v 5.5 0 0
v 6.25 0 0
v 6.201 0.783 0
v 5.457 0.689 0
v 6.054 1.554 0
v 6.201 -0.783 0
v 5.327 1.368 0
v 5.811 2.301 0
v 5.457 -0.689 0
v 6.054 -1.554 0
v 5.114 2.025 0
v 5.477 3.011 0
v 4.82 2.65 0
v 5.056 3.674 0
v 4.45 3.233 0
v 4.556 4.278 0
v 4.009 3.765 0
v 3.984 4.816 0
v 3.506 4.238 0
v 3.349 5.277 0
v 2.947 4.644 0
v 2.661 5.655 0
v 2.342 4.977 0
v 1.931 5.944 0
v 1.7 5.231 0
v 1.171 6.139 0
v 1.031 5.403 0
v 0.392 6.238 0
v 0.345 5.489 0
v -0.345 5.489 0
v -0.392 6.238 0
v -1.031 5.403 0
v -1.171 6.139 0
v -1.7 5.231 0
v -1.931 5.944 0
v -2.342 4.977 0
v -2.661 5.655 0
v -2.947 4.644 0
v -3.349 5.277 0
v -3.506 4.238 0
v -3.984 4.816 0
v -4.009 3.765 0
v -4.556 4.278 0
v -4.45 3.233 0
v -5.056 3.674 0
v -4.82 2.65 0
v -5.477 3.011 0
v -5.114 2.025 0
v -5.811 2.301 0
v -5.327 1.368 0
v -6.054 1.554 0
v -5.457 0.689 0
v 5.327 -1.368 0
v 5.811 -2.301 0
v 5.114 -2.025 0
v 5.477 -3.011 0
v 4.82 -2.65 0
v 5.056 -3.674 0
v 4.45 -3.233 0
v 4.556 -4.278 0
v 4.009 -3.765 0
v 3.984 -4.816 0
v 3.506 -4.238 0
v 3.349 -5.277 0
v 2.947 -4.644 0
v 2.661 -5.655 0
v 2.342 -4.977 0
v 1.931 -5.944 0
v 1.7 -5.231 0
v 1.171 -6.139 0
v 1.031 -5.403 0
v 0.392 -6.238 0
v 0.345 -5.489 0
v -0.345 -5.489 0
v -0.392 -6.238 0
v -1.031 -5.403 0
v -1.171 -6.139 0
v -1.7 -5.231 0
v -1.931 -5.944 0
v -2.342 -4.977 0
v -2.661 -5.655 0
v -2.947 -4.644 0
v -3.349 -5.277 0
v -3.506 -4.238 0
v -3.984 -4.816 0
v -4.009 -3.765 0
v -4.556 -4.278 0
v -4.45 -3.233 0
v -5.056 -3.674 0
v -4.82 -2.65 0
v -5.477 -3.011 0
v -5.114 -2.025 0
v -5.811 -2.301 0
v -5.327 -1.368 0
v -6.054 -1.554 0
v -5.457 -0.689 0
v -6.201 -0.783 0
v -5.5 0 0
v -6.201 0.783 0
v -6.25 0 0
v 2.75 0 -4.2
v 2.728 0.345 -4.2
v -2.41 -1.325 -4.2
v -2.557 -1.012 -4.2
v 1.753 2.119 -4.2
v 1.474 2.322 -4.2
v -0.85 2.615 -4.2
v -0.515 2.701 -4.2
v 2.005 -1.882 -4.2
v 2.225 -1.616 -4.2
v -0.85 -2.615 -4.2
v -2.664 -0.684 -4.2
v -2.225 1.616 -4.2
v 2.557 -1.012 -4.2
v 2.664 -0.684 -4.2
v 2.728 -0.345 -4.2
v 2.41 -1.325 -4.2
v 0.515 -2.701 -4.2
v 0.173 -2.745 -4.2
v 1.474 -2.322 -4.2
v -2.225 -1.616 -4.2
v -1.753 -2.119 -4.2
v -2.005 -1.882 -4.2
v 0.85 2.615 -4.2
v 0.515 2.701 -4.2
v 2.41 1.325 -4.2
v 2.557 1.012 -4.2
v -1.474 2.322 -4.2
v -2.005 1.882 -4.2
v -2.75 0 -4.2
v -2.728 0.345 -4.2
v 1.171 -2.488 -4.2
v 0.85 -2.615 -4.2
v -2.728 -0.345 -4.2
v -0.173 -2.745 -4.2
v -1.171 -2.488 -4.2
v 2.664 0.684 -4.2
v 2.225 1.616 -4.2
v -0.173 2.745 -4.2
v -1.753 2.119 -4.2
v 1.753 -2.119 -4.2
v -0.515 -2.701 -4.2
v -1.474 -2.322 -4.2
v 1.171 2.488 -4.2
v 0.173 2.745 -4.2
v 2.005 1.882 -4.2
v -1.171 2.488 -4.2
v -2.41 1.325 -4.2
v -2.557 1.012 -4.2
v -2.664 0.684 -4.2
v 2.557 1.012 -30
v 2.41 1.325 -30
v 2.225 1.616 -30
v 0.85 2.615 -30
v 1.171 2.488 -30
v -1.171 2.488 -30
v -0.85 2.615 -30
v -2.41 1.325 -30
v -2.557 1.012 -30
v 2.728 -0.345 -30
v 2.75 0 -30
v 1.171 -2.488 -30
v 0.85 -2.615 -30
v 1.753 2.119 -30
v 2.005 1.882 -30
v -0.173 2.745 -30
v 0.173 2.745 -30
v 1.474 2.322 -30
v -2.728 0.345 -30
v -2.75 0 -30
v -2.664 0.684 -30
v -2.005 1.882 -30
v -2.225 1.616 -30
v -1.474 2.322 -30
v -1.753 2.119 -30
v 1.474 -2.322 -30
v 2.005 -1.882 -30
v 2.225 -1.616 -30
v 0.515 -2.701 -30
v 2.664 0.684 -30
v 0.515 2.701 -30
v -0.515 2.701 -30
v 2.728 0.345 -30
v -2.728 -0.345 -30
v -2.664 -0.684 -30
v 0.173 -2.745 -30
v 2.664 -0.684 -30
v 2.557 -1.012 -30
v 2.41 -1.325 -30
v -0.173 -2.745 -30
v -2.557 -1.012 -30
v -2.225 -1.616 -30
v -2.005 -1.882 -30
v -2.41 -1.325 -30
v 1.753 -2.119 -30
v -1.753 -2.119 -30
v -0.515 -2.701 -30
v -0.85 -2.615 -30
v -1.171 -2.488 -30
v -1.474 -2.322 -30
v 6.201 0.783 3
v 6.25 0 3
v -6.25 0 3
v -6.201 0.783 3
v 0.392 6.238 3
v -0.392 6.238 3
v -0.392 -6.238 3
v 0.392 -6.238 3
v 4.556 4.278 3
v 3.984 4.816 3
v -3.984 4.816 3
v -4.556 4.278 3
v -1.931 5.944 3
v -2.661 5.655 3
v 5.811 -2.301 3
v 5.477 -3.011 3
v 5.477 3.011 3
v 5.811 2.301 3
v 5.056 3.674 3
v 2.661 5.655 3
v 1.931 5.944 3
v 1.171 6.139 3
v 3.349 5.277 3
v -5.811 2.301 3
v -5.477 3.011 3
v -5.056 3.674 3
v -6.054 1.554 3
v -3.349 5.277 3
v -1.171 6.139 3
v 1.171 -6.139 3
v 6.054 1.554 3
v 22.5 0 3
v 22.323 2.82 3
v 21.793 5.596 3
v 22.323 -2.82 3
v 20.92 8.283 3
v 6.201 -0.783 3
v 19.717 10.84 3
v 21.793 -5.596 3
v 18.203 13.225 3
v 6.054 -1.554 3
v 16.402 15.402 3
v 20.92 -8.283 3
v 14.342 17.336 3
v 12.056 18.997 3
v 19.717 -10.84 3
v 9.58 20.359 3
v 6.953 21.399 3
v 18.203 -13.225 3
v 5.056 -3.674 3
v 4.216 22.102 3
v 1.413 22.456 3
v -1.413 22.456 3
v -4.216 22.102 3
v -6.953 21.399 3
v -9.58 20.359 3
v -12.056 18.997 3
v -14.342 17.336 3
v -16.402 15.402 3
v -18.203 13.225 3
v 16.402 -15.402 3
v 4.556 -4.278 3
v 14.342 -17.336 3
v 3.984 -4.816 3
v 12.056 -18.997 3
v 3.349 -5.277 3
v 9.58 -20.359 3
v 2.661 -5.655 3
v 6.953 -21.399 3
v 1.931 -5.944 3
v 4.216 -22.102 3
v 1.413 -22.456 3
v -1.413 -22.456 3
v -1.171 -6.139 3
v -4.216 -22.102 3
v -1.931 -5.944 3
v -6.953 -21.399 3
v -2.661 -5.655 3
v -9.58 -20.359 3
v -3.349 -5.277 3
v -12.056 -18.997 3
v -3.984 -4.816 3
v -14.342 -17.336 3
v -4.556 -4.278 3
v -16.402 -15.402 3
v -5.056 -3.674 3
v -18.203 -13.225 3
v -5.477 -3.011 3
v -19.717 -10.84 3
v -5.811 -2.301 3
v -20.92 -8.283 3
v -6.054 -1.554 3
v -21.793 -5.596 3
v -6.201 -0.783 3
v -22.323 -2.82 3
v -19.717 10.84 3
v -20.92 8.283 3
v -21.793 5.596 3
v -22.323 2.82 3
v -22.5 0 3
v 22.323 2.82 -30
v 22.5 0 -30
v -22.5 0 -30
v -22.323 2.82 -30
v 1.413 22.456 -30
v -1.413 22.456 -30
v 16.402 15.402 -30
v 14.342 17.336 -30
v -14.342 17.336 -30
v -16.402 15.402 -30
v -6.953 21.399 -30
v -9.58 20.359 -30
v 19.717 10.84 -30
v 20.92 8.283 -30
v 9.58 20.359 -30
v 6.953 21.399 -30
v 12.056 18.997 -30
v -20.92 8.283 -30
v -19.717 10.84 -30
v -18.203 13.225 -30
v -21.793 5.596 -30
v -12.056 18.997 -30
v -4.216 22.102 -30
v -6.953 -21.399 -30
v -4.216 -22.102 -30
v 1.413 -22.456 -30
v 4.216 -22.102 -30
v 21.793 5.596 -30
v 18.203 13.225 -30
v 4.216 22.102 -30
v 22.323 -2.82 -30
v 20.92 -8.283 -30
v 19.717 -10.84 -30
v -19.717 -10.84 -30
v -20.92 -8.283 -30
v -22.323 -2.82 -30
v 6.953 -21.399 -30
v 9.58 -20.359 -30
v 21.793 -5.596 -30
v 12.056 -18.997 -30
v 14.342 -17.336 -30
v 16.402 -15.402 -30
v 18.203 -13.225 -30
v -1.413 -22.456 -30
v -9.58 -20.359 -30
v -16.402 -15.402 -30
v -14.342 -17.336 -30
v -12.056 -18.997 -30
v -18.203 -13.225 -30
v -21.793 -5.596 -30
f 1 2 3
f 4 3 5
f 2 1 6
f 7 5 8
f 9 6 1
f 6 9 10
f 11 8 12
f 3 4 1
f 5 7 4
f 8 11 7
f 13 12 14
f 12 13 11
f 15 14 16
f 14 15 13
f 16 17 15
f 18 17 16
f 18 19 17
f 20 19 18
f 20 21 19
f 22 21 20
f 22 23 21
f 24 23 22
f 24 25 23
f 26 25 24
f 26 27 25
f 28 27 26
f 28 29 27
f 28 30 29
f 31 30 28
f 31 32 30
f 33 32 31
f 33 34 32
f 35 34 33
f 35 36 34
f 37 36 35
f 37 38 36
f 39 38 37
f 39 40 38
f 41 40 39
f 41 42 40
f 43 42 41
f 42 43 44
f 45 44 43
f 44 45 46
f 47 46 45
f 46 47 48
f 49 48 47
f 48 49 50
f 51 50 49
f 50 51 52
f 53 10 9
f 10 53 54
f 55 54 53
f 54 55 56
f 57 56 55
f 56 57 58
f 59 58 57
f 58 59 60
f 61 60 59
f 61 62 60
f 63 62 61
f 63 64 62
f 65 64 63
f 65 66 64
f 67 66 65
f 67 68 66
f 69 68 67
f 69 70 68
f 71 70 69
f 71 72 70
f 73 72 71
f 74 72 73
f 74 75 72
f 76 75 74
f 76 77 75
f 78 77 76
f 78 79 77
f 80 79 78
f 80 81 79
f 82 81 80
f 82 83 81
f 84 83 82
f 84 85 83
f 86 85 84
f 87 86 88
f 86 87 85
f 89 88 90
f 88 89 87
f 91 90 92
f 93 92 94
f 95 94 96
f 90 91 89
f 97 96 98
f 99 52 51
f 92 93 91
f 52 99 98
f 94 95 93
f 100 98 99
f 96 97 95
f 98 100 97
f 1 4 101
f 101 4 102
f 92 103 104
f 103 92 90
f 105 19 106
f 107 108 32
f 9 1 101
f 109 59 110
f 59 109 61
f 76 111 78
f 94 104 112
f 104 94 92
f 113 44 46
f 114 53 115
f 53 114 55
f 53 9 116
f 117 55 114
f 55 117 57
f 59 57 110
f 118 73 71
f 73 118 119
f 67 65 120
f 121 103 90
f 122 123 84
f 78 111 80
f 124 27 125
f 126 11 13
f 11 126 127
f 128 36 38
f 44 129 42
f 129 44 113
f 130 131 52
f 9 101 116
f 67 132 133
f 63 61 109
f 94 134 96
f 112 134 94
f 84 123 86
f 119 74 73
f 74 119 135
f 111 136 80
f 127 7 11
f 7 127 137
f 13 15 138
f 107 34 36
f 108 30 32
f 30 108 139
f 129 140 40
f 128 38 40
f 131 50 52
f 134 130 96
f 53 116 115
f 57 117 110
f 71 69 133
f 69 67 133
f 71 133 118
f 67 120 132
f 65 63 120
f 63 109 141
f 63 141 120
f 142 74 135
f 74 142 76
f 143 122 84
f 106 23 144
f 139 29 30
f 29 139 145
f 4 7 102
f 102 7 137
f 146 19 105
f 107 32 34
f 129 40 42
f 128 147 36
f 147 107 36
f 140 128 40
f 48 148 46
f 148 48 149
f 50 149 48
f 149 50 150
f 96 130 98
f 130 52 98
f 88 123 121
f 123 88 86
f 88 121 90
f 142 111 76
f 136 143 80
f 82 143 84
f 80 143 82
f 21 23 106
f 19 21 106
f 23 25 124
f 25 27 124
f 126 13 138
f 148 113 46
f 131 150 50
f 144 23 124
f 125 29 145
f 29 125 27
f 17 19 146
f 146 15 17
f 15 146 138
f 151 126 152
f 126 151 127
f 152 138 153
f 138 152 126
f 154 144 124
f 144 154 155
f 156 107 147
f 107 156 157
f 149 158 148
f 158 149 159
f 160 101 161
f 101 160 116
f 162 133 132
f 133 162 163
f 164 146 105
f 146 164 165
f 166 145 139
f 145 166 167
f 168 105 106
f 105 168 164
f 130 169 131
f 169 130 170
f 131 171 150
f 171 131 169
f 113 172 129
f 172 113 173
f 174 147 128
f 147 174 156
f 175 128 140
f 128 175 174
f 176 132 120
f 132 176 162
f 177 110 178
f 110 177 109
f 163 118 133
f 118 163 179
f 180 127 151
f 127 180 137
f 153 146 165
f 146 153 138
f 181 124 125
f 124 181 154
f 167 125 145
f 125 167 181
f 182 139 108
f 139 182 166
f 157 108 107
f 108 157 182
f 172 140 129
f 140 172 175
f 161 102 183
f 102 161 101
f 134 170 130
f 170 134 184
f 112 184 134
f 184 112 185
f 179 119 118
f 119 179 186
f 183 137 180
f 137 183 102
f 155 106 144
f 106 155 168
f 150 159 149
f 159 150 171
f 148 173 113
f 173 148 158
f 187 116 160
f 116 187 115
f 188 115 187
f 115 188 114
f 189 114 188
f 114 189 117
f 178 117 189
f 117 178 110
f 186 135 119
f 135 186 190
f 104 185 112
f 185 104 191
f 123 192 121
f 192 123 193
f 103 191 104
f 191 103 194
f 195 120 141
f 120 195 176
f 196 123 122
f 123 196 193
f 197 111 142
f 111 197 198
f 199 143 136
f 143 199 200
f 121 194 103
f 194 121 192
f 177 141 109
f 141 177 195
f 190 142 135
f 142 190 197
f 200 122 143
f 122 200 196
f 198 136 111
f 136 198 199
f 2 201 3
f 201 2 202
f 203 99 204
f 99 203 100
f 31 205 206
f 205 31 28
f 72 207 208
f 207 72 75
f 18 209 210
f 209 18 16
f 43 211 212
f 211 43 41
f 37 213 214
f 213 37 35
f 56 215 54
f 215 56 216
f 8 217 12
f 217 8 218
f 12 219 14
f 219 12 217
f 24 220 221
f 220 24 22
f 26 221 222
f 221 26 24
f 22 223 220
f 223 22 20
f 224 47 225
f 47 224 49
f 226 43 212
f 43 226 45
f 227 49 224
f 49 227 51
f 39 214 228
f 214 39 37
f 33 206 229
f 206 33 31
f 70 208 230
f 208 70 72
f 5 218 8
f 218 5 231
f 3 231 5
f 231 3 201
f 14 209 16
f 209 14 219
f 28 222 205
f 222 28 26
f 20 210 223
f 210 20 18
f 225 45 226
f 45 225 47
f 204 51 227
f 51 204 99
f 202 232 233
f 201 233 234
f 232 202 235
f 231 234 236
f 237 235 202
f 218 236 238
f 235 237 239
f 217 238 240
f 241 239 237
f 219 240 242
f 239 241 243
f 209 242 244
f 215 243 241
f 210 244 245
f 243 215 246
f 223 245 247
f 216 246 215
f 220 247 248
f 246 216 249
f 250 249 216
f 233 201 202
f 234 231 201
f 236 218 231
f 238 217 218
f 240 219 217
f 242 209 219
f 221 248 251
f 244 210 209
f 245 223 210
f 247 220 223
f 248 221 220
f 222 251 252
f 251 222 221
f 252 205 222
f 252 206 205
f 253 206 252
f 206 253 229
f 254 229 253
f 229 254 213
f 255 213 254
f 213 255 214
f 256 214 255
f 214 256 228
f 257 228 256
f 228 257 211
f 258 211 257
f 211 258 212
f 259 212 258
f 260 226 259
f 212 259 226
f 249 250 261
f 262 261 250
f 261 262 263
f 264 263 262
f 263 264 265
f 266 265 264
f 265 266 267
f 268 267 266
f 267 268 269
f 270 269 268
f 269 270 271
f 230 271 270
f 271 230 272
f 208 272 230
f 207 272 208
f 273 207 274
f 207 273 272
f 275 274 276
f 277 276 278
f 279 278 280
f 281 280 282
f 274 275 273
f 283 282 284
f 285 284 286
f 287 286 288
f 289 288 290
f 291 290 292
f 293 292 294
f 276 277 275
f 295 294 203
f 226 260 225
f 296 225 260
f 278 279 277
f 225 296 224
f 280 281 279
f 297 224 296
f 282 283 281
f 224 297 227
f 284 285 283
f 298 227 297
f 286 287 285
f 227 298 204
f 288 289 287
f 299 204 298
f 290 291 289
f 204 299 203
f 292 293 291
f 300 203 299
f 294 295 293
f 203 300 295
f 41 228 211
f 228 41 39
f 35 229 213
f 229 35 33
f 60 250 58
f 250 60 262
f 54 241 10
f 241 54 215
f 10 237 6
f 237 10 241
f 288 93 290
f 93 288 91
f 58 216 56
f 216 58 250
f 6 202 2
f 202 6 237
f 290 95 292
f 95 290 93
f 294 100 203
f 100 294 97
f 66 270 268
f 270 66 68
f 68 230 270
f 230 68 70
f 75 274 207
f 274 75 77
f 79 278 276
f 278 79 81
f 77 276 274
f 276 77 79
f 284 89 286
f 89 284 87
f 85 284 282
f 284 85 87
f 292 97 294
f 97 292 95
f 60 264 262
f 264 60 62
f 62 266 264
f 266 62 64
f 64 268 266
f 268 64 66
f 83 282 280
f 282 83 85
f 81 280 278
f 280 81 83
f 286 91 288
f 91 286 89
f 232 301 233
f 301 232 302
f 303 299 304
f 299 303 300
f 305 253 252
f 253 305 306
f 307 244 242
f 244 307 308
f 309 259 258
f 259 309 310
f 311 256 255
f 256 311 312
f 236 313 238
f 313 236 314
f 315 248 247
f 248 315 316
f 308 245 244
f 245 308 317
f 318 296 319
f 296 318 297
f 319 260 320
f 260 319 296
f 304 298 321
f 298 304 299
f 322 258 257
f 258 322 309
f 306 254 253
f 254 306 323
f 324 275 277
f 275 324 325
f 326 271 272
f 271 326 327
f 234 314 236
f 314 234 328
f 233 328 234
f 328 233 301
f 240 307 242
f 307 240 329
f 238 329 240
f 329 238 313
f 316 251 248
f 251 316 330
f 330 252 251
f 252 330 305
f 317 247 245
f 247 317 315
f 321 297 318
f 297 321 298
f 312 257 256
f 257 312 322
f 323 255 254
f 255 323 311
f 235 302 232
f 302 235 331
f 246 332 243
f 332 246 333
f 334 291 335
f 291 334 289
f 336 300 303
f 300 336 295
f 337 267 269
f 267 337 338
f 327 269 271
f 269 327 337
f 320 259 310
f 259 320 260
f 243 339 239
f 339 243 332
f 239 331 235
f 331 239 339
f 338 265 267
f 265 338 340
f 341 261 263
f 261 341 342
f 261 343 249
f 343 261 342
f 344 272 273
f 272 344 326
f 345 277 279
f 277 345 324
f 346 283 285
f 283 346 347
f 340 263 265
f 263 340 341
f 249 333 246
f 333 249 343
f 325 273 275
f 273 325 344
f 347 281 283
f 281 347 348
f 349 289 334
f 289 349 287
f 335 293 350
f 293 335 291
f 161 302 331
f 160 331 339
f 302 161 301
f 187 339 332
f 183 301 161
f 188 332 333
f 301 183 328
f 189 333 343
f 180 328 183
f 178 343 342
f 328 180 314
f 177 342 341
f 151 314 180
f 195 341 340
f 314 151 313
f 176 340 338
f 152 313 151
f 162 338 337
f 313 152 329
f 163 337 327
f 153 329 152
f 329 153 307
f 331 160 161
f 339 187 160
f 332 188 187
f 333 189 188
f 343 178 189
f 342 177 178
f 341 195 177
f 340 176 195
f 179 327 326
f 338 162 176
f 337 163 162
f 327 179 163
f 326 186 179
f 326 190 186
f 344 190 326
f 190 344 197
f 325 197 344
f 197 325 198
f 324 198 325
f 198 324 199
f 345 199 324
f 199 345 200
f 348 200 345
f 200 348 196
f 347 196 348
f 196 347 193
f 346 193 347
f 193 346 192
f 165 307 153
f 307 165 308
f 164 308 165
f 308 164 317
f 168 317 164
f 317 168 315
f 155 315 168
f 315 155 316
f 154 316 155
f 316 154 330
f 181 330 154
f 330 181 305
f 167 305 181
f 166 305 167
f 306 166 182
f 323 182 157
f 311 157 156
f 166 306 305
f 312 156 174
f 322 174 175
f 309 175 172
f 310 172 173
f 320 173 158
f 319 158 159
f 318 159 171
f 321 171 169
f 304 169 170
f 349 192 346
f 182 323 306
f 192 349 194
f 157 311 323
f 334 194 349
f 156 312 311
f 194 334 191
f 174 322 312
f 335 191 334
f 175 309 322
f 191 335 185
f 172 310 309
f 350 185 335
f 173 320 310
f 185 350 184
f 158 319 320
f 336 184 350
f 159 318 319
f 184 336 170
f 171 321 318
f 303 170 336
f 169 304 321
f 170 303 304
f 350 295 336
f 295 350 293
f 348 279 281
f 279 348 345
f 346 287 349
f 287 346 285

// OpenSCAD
$fn = 50;

difference() {
	union() {
		translate(v = [0, 0, -30.0]) {
			cylinder(h = 33, r = 22.5);
		}
	}
	union() {
		translate(v = [0, 0, 0]) {
			rotate(a = [0, 0, 0]) {
				difference() {
					union() {
						translate(v = [0, 0, -33.0]) {
							cylinder(h = 33, r = 2.25);
						}
						translate(v = [0, 0, -4.2]) {
							cylinder(h = 4.2, r1 = 2.75, r2 = 5.5);
						}
						translate(v = [0, 0, -33.0]) {
							cylinder(h = 33, r = 2.75);
						}
						translate(v = [0, 0, -33.0]) {
							cylinder(h = 33, r = 2.25);
						}
					}
					union();
				}
			}
		}
		#cylinder(h = 3, r = 6.25);
	}
}
